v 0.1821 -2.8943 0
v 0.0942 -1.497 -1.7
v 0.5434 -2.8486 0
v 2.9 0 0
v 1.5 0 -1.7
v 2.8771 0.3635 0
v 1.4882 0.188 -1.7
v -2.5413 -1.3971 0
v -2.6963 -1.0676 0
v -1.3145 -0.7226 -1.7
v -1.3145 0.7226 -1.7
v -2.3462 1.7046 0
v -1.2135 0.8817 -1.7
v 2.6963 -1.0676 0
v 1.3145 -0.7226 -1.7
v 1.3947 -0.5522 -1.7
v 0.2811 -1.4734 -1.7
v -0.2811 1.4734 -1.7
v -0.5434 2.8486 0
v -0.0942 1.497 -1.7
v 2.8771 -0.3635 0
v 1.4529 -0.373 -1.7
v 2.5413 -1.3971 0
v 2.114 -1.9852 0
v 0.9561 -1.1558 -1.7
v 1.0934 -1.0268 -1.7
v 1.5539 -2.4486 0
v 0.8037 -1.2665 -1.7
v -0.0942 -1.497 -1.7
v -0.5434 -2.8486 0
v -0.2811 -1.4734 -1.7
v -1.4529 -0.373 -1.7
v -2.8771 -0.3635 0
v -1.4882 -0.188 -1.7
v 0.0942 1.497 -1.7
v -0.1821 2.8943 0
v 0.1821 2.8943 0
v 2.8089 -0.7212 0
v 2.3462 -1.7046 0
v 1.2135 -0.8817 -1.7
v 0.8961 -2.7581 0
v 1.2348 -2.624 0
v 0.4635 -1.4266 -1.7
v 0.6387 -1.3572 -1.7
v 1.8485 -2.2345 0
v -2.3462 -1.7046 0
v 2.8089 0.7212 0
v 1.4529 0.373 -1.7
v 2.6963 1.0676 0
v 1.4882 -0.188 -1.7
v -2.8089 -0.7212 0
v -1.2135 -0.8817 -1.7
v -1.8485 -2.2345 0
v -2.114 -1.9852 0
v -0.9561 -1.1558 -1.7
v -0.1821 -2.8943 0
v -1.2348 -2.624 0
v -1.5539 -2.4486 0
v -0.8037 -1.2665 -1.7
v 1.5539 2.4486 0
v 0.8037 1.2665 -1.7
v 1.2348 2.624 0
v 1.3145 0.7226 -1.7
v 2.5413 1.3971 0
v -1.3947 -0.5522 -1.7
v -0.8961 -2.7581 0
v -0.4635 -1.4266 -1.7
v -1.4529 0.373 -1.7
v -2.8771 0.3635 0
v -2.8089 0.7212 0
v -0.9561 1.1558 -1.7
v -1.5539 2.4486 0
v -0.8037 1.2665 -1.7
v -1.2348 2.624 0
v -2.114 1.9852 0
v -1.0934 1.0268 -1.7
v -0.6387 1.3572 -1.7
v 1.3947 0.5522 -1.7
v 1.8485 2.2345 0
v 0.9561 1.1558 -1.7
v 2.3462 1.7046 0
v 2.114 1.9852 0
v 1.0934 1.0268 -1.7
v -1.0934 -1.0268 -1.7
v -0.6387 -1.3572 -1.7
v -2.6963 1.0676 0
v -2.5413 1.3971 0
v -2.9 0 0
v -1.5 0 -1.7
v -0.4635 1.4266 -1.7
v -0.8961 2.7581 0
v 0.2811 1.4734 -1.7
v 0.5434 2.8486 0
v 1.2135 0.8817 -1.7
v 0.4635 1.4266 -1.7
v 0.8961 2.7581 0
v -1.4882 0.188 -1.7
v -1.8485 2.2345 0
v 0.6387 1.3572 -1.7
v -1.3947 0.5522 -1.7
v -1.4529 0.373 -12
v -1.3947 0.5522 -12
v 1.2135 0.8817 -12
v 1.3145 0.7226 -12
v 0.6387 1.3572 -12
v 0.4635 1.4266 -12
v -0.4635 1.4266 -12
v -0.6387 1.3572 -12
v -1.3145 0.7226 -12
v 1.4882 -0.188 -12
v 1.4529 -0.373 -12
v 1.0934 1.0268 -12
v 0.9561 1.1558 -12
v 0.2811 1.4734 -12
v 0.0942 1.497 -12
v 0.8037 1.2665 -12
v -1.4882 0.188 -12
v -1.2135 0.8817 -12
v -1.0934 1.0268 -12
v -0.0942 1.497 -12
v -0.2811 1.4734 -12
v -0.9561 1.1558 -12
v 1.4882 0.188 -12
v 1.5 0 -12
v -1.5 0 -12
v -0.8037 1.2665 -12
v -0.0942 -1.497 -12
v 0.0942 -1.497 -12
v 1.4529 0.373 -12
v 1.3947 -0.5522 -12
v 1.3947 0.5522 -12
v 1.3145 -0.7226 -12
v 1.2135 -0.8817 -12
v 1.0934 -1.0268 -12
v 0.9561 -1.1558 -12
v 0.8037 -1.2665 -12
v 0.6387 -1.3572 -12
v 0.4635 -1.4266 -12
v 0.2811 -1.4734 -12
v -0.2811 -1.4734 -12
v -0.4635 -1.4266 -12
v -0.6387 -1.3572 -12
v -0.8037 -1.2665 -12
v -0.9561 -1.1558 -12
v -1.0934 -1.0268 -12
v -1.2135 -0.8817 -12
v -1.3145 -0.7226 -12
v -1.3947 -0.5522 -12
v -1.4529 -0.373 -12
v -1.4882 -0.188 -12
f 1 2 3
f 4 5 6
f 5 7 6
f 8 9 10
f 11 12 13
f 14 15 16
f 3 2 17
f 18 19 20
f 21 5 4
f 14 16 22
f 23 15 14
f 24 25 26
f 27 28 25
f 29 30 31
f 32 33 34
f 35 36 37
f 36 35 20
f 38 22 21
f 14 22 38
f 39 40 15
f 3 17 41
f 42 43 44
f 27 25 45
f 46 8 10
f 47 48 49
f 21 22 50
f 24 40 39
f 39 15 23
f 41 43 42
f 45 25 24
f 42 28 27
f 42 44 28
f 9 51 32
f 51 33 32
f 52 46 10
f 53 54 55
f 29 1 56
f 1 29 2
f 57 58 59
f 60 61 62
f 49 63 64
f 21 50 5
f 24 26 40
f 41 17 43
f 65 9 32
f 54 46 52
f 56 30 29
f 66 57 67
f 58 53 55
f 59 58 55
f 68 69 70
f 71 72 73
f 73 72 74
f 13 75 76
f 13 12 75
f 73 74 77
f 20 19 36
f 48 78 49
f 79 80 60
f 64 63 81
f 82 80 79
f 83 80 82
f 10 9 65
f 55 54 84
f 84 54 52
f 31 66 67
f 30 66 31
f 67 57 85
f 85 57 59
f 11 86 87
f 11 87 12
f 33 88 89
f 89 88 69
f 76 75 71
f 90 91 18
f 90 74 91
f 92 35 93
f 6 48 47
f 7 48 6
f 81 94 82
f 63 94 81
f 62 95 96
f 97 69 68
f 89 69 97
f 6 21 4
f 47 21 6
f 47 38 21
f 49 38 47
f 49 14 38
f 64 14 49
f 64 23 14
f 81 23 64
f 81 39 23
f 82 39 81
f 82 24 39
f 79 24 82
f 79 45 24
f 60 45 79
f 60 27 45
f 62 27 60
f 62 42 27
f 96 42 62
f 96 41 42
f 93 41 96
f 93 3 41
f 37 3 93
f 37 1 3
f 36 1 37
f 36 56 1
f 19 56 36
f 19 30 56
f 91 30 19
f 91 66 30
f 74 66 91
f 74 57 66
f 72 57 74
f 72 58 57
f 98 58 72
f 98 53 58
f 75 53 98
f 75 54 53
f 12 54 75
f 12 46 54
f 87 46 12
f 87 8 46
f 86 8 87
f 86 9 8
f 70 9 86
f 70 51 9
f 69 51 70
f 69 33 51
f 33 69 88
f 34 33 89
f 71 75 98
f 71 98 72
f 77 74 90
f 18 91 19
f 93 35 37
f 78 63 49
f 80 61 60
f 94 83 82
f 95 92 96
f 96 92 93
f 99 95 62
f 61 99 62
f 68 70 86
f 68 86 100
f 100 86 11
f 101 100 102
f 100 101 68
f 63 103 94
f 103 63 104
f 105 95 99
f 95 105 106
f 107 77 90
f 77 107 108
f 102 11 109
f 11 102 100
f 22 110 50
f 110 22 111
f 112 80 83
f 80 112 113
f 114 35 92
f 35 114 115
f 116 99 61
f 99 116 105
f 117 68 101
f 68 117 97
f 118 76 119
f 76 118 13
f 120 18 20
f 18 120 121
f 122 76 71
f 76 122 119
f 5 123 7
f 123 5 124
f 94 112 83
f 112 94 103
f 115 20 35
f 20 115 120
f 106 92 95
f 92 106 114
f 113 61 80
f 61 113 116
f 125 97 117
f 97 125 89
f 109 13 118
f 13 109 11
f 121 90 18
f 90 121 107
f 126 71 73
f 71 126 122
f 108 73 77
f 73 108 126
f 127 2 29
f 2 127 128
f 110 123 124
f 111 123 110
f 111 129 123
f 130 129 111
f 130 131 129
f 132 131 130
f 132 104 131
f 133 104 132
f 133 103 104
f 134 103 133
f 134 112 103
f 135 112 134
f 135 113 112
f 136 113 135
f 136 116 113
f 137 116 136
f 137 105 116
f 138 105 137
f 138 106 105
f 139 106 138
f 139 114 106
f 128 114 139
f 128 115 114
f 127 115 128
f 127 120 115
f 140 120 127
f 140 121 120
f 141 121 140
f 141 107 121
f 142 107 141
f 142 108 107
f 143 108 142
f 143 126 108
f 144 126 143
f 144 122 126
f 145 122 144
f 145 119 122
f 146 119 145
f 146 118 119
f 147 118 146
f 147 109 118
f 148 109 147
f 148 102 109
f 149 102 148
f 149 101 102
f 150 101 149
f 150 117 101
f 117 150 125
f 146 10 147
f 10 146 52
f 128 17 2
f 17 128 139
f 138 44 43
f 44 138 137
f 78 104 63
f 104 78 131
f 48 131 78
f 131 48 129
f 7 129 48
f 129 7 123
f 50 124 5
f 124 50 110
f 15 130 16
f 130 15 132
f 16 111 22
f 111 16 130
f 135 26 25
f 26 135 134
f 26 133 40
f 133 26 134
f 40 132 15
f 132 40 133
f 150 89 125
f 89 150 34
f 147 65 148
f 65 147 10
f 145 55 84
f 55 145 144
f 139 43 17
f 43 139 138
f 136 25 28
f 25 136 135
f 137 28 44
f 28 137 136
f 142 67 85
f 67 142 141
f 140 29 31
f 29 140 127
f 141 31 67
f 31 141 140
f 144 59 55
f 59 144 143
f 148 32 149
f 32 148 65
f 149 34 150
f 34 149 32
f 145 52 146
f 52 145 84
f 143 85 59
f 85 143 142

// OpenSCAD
// Generated by SolidPython 1.1.3 on 2023-03-13 21:06:12
$fn = 50;


difference() {
	union() {
		translate(v = [0, 0, -1.7000000000]) {
			rotate(a = [0, 0, 0]) {
				cylinder(h = 1.7000000000, r1 = 1.5000000000, r2 = 2.9000000000);
			}
		}
		translate(v = [0, 0, -12]) {
			rotate(a = [0, 0, 0]) {
				cylinder(h = 12, r = 1.5000000000);
			}
		}
	}
	union();
}
/***********************************************
*********      SolidPython code:      **********
************************************************
 
from solid import *
import os
import subprocess

import oomB

import opsc_library_gen

mode = "laser"
#mode = "3d_print"

defined_objects = {}

radius_dict = {}
countersunk_dict = {}


def set_mode(m):
    global mode
    mode = m
    radius_dict['M6'] = 6.5/2
    radius_dict['M3'] = 3.3/2
    if mode == "laser":
        radius_dict['M6'] = 6/2
        radius_dict['M3'] = 3/2

    countersunk_dict['M3'] = {}
    countersunk_dict['M3']['little_rad'] = radius_dict['M3']
    countersunk_dict['M3']['big_rad'] = (5.5+0.6)/2
    if mode == "laser":
        countersunk_dict['M3']['big_rad'] = (4.75+0.6)/2
        countersunk_dict['M3']['little_rad'] = (4.75+0.6)/2

    countersunk_dict['M3']['height'] = 1.7


def opsc_make_object(filename, objects, save_type="none",resolution=50, layers = 1, tilediff = 200, mode="laser", overwrite=True):
    if overwrite or not os.path.exists(filename):
        set_mode(mode)
        save_type = save_type.lower()
        os.makedirs(os.path.dirname(filename), exist_ok=True)
        final_object = opsc_get_object(objects, mode = mode)
        # Save the final object to the specified filename    
        scad_render_to_file(final_object, filename, file_header='$fn = %s;' % resolution, include_orig_code=True)
        if save_type == "all":
            saveToAll(filename)
        elif save_type == "dxf":
            saveToDxf(filename)
        if mode == "laser":
            filename_laser = filename.replace(".scad","-flat.scad")
            scad_render_to_file(getLaser(final_object, layers=layers, tilediff=tilediff), filename_laser, file_header='$fn = %s;' % resolution, include_orig_code=True)
            if save_type == "all":
                saveToAll(filename_laser)
            elif save_type == "dxf":
                saveToDxf(filename_laser)


def opsc_get_object(objects, mode = "laser"):
    # Create the solidpython objects only include the positive objects and if they don't have inclusion or their inclusion is either all or mode
    # Initialize an empty list to store the results
    positive_objects = []

    # Iterate over the "objects" list
    for obj in objects:
        # Check if the current object has a "type" key with a value of "positive"
        if obj['type'] == 'positive':
            # Check if the current object has an "inclusion" key and its value matches "mode",
            # or if the current object does not have an "inclusion" key at all
            if not 'inclusion' in obj or obj['inclusion'] == "all" or obj['inclusion'] == mode:
                # Call the "get_opsc_item" function with the current object as an argument
                opsc_item = get_opsc_item(obj)
                # Add the result to the "positive_objects" list
                positive_objects.append(opsc_item)
# Initialize an empty list to store the results
    negative_objects = []

    # Iterate over the "objects" list
    for obj in objects:
        # Check if the current object has a "type" key with a value of "negative"
        if obj['type'] == 'negative':
            # Check if the current object has an "inclusion" key and its value matches "mode",
            # or if the current object does not have an "inclusion" key at all
            if not 'inclusion' in obj or obj['inclusion'] == "all" or obj['inclusion'] == mode:
                # Call the "get_opsc_item" function with the current object as an argument
                opsc_item = get_opsc_item(obj)
                # Add the result to the "negative_objects" list
                negative_objects.append(opsc_item)
    
    #positive_objects = [get_opsc_item(obj) for obj in objects if obj['type'] == 'positive']
    #negative_objects = [get_opsc_item(obj) for obj in objects if obj['type'] == 'negative']
    # Union the positive objects
    positive_object = union()(*positive_objects)
    # Union the negative objects
    negative_object = union()(*negative_objects)
    # Create the final object by subtracting the negative objects from the positive objects
    return difference()(positive_object, negative_object)

def get_opsc_item(params):
    # A dictionary to map radius string values to numerical values
    #radius_dict = {'small': 5, 'medium': 10, 'large': 15}
    # An array of function names for basic shapes
    basic_shapes = ['cube', 'sphere', 'cylinder']
    
    # An array of function names for other shapes
    other_shapes = ['hole', 'slot', 'rounded_rectangle', 'countersunk', 'polyg']
    


    # Convert radius to r if present, and remove radius from the params dictionary
    if 'radius' in params:
        if isinstance(params['radius'], str):
            # Use the radius_dict to map the radius string value to a numerical value
            params['r'] = radius_dict[params['radius']]
        else:
            params['r'] = params['radius']
        del params['radius']
    

    # Check if the object type is a basic shape
    if params['shape'] in basic_shapes:
        # Remove shape and unexpected dictionary values
        allowed_keys = {'size', 'r', 'r1', 'r2', 'd', 'h', 'rw', 'rh', 'dw', 'dh'}
        shape_params = {k: v for k, v in params.items() if k in allowed_keys}

        #params['m'] = "#"
        ###split for adding modifier
        try:
            m = params['m']
            func = globals()[params['shape']]
            return_value = get_opsc_transform(params,func(**shape_params))
            return_value = (return_value).set_modifier(m)
            return return_value
        except KeyError as e:
            return get_opsc_transform(params,globals()[params['shape']](**shape_params))
        
    elif params['shape'] == 'polygon':
        # Remove shape and unexpected dictionary values
        h  = params['height']
        allowed_keys = {'points'}
        shape_params = {k: v for k, v in params.items() if k in allowed_keys}

        # Call the corresponding function for the shape parameter, using ** notation to pass the shape_params dictionary as keyword arguments
        params["rot"] = [0,0,0]        
        try:
            m = params['m']
            func = globals()[params['shape']]
            return_value = get_opsc_transform(params,linear_extrude(h)(globals()[params['shape']](**shape_params)))
            return_value = (return_value).set_modifier(m)
            return return_value
        except KeyError as e:
            return_value = get_opsc_transform(params,linear_extrude(h)(globals()[params['shape']](**shape_params)))
            return_value = (return_value)
            return return_value


    # If the object type is not a basic shape, check if it's a defined object or one of the other shapes
    elif params['shape'] in other_shapes:
        # Call the corresponding function for the shape parameter, passing the params dictionary as an argument
        p2 = copy.deepcopy(params)
        p2["pos"] = [0,0,0]
        return get_opsc_transform(params,globals()[params['shape']](p2))
    
    # If the object is not a basic shape or a defined object, try to import it from a .scad file
    else:
        obj = defined_objects[params['shape']]
        return get_opsc_transform(params,obj)

def get_opsc_transform(params, solid_obj):
    # Rotate the object based on the 'rot' field in the params dictionary, or the 'rotX', 'rotY', and 'rotZ' fields if 'rot' is not present
    rot = params.get('rot', [])
    if rot:
        rotX, rotY, rotZ = rot
    else:
        rotX = params.get('rotX', 0)
        rotY = params.get('rotY', 0)
        rotZ = params.get('rotZ', 0)
    solid_obj = rotate([rotX, rotY, rotZ])(solid_obj)

    # Translate the object based on the 'pos' field in the params dictionary, or the 'x', 'y', and 'z' fields if 'pos' is not present
    pos = params.get('pos', [])
    if pos:
        x, y, z = pos
    else:
        x = params.get('x', 0)
        y = params.get('y', 0)
        z = params.get('z', 0)
    solid_obj = translate([x, y, z])(solid_obj)
    return solid_obj


import random

def opsc_easy_array(type, shape, repeats, pos_start, shift_arr, **kwargs):
    for i in range(0,3):
        repeats.append(1)
        pos_start.append(0)
        shift_arr.append(0)
    return_objects = []

    for x in range(0,repeats[0]):
        for y in range(0,repeats[1]):
            for z in range(0,repeats[2]):
                return_objects.append(opsc_easy(type, shape, pos=[pos_start[0]+x*shift_arr[0],pos_start[1]+y*shift_arr[1],pos_start[2]+z*shift_arr[2]], **kwargs))
    return return_objects                



def opsc_easy(type, shape, **kwargs):
    obj = {
        'type': type,
        'shape': shape
    }
    for param in ['size', 'r', 'r1', 'r2', 'd', 'h', 'rw', 'rh', 'dw', 'dh', 'pos', 'x', 'y', 'z', 'rot', 'rotX', 'rotY', 'rotZ', "w", "inclusion", 'sides', 'height', "m"]:
        if param in kwargs:
            obj[param] = kwargs[param]
    return obj

def hole(params):
    p2 = copy.deepcopy(params)  
    # Check if the radius is a string and replace it with the corresponding value from the dictionary
    if isinstance(p2['r'], str):
        p2['r'] = radius_dict[p2['r']]
    
    # Set the height to 100 if not specified
    if 'h' not in p2:
        p2['h'] = 100
        p2["pos"] = [0,0,-50]
    p2["center"] = True
    # Create the cylinder object
    p2["shape"] = "cylinder"
    p2["type"] = "positive"

    return get_opsc_item(p2)

import copy

def countersunk(params):
    p2 = copy.deepcopy(params)
    counter_rad = p2['r']
    p2['r'] = radius_dict[p2['r']]
    hp = copy.deepcopy(p2)
    hp["type"] = "positive"
    hp["shape"] = "hole"
    del hp["rot"]
    hol = get_opsc_item(hp)
    
    cp = copy.deepcopy(p2)
    cp["h"] = countersunk_dict[counter_rad]["height"]
    cp["r2"] = countersunk_dict[counter_rad]["little_rad"]
    cp["r1"] = countersunk_dict[counter_rad]["big_rad"]
    del cp["r"]
    del cp["rot"]
    cp["type"] = "positive"
    cp["shape"] = "cylinder"
    cp["pos"] = [0,0,0]

    top = get_opsc_item(cp)
    return union()(hol,top)



def slot(params):  
    p2 = copy.deepcopy(params) 
    if isinstance(p2['r'], str):
        p2['r'] = radius_dict[p2['r']]
    p2["type"] = "positive"
    p2["shape"] = "hole"
    del p2["rot"]
    p2["pos"] = [0,0,0]
    left = copy.deepcopy(p2)
    right = copy.deepcopy(p2)
    left["pos"][0] = p2["w"] / 2 - p2["r"] 
    
    right["pos"][0] = -p2["w"] / 2 + p2["r"] 
    pass
    leftObj = get_opsc_item(left)
    rightObj = get_opsc_item(right)
    return hull()(leftObj, rightObj)

def rounded_rectangle(params):   
    p2 = copy.deepcopy(params) 
    p2["h"] = p2["size"][2]
    p2["pos"] = p2.get("pos", [0, 0, 0]) 
    p2["type"] = "positive"
    p2["shape"] = "hole"
    p2["pos"] = [0,0,0]
    
    if 'rot' in p2:
        del p2["rot"]   
    if 'r' not in p2:
        p2["r"] = 5 
    tl = copy.deepcopy(p2)
    tr = copy.deepcopy(p2)
    bl = copy.deepcopy(p2)
    br = copy.deepcopy(p2)
    tl["pos"][0] = -(p2["size"][0] - p2["r"]*2)/2
    tl["pos"][1] = (p2["size"][1] - p2["r"]*2)/2
    tr["pos"][0] = (p2["size"][0] - p2["r"]*2)/2
    tr["pos"][1] = (p2["size"][1] - p2["r"]*2)/2
    bl["pos"][0] = -(p2["size"][0] - p2["r"]*2)/2
    bl["pos"][1] = -(p2["size"][1] - p2["r"]*2)/2
    br["pos"][0] = (p2["size"][0] - p2["r"]*2)/2
    br["pos"][1] = -(p2["size"][1] - p2["r"]*2)/2
    del tl["size"]
    del tr["size"]
    del bl["size"]
    del br["size"]
    tlo = get_opsc_item(tl)
    tro = get_opsc_item(tr)
    blo = get_opsc_item(bl)
    bro = get_opsc_item(br)    
    return hull()(tlo, tro, blo, bro)



def polyg(params):
    p2 = copy.deepcopy(params) 
    p2["type"] = "positive"
    p2["shape"] = "polygon"
    p2["pos"] = [0,0,0]
    sides = p2["sides"]
    radius = p2["r"]    
    angles = [i * 360 / sides for i in range(sides)]
    points = regular_polygon(sides, radius)
    
    p2["points"] = points
    return get_opsc_item(p2)

import math

def regular_polygon(num_sides, radius):
    # Calculate the angle between each side
    angle = 2 * math.pi / num_sides

    # Calculate the points of the polygon
    points = []
    for i in range(num_sides):
        x = radius * math.cos(i * angle)
        y = radius * math.sin(i * angle)
        points.append((x, y))
    return points

def import_scad_object(filename):
    # Import the .scad file and convert it to a solidpython object
    #filename = "parts"
    obj = import_scad(filename)
    return obj.main()



import os
import solid as solidpython

# A dictionary to store the defined objects


def load_scad_objects():
    opsc_library_gen.gen_library(defined_objects)

import random

def test(num_objects):
    objects = []
    for i in range(num_objects):
        # Choose a random shape
        #shape = random.choice(['cube', 'sphere', 'cylinder', 'hole', 'slot', "rounded_rectangle"])
        shape = random.choice(["rounded_rectangle"])

        # Choose a random type
        type = random.choice(['positive', 'negative'])
        
        # Create an empty object dictionary
        obj = {'shape': shape, 'type': type}
        
        # Set shape-specific parameters
        if obj['shape'] in ['cube']:
            obj['size'] =  [random.uniform(5, 15), random.uniform(5, 15), random.uniform(5, 15)]
        if obj['shape'] in ['rounded_rectangle']:
            obj['size'] =  [random.uniform(5, 15), random.uniform(5, 15), random.uniform(5, 15)]
            obj['r'] = random.uniform(0.5, 5)
        elif obj['shape'] == 'sphere':
            obj['r'] = random.uniform(5, 15)
        elif obj['shape'] in ['cylinder', 'hole']:
            obj['r'] = random.uniform(0.5, 5)
            obj['h'] = random.uniform(5, 15)
        elif obj['shape'] == 'slot':
            obj['r'] = random.uniform(0.5, 5)
            obj['h'] = random.uniform(5, 15)
            obj['w'] = random.uniform(5, 15)
        
        # Set a random position and rotation
        obj['pos'] = [random.uniform(-20, 20), random.uniform(-20, 20), random.uniform(-20, 20)]
        obj['rot'] = [random.uniform(-180, 180), random.uniform(-180, 180), random.uniform(-180, 180)]
        
        # Add the object to the list
        objects.append(obj)
    return objects

####### old file saving
def saveToAll(fileIn):
    saveToStl(fileIn)
    saveToDxf(fileIn)
    saveToPng(fileIn)
    saveToSvg(fileIn)

def saveToDxf(fileIn, fileOut="", copy_to_laser=True):
    if fileOut == "":
        fileOut = fileIn.replace(".scad",".dxf")
    saveToFile(fileIn, fileOut)


    
def saveToPng(fileIn, fileOut="",extra="--render"):
    if fileOut == "":
        fileOut = fileIn.replace(".scad",".png")
    saveToFile(fileIn, fileOut)

def saveToStl(fileIn, fileOut=""):
    if fileOut == "":
        fileOut = fileIn.replace(".scad",".stl")
    saveToFile(fileIn, fileOut)
    
def saveToSvg(fileIn, fileOut=""):
    if fileOut == "":
        fileOut = fileIn.replace(".scad",".svg")
    saveToFile(fileIn, fileOut)

def saveToFile(fileIn, fileOut,extra=""):
    #extra = extra + " --colorscheme Tomorrow"

    launchStr = 'openscad -o "' + fileOut + '"' + extra + ' "' + fileIn + '"'
    if ".png" in fileOut:
        launchStr = launchStr + " --render"
    print("            saveToFile launch string: " + launchStr)
    subprocess.run(launchStr)
    x=0

def getLaser(final_object,start=1.5,layers=1,thickness=3,tilediff=200):
        rv= []

        for x in range(layers):
            rv.append(translate([0,x*tilediff,0])(
                    projection()(
                        intersection()(translate([-500,-500,start+x*thickness])(cube(size=[1000,1000,0.1])),
                            final_object
                        )
                    )
            )
            )
            
        return union()(rv)

set_mode("laser")
load_scad_objects() 
 
************************************************/
